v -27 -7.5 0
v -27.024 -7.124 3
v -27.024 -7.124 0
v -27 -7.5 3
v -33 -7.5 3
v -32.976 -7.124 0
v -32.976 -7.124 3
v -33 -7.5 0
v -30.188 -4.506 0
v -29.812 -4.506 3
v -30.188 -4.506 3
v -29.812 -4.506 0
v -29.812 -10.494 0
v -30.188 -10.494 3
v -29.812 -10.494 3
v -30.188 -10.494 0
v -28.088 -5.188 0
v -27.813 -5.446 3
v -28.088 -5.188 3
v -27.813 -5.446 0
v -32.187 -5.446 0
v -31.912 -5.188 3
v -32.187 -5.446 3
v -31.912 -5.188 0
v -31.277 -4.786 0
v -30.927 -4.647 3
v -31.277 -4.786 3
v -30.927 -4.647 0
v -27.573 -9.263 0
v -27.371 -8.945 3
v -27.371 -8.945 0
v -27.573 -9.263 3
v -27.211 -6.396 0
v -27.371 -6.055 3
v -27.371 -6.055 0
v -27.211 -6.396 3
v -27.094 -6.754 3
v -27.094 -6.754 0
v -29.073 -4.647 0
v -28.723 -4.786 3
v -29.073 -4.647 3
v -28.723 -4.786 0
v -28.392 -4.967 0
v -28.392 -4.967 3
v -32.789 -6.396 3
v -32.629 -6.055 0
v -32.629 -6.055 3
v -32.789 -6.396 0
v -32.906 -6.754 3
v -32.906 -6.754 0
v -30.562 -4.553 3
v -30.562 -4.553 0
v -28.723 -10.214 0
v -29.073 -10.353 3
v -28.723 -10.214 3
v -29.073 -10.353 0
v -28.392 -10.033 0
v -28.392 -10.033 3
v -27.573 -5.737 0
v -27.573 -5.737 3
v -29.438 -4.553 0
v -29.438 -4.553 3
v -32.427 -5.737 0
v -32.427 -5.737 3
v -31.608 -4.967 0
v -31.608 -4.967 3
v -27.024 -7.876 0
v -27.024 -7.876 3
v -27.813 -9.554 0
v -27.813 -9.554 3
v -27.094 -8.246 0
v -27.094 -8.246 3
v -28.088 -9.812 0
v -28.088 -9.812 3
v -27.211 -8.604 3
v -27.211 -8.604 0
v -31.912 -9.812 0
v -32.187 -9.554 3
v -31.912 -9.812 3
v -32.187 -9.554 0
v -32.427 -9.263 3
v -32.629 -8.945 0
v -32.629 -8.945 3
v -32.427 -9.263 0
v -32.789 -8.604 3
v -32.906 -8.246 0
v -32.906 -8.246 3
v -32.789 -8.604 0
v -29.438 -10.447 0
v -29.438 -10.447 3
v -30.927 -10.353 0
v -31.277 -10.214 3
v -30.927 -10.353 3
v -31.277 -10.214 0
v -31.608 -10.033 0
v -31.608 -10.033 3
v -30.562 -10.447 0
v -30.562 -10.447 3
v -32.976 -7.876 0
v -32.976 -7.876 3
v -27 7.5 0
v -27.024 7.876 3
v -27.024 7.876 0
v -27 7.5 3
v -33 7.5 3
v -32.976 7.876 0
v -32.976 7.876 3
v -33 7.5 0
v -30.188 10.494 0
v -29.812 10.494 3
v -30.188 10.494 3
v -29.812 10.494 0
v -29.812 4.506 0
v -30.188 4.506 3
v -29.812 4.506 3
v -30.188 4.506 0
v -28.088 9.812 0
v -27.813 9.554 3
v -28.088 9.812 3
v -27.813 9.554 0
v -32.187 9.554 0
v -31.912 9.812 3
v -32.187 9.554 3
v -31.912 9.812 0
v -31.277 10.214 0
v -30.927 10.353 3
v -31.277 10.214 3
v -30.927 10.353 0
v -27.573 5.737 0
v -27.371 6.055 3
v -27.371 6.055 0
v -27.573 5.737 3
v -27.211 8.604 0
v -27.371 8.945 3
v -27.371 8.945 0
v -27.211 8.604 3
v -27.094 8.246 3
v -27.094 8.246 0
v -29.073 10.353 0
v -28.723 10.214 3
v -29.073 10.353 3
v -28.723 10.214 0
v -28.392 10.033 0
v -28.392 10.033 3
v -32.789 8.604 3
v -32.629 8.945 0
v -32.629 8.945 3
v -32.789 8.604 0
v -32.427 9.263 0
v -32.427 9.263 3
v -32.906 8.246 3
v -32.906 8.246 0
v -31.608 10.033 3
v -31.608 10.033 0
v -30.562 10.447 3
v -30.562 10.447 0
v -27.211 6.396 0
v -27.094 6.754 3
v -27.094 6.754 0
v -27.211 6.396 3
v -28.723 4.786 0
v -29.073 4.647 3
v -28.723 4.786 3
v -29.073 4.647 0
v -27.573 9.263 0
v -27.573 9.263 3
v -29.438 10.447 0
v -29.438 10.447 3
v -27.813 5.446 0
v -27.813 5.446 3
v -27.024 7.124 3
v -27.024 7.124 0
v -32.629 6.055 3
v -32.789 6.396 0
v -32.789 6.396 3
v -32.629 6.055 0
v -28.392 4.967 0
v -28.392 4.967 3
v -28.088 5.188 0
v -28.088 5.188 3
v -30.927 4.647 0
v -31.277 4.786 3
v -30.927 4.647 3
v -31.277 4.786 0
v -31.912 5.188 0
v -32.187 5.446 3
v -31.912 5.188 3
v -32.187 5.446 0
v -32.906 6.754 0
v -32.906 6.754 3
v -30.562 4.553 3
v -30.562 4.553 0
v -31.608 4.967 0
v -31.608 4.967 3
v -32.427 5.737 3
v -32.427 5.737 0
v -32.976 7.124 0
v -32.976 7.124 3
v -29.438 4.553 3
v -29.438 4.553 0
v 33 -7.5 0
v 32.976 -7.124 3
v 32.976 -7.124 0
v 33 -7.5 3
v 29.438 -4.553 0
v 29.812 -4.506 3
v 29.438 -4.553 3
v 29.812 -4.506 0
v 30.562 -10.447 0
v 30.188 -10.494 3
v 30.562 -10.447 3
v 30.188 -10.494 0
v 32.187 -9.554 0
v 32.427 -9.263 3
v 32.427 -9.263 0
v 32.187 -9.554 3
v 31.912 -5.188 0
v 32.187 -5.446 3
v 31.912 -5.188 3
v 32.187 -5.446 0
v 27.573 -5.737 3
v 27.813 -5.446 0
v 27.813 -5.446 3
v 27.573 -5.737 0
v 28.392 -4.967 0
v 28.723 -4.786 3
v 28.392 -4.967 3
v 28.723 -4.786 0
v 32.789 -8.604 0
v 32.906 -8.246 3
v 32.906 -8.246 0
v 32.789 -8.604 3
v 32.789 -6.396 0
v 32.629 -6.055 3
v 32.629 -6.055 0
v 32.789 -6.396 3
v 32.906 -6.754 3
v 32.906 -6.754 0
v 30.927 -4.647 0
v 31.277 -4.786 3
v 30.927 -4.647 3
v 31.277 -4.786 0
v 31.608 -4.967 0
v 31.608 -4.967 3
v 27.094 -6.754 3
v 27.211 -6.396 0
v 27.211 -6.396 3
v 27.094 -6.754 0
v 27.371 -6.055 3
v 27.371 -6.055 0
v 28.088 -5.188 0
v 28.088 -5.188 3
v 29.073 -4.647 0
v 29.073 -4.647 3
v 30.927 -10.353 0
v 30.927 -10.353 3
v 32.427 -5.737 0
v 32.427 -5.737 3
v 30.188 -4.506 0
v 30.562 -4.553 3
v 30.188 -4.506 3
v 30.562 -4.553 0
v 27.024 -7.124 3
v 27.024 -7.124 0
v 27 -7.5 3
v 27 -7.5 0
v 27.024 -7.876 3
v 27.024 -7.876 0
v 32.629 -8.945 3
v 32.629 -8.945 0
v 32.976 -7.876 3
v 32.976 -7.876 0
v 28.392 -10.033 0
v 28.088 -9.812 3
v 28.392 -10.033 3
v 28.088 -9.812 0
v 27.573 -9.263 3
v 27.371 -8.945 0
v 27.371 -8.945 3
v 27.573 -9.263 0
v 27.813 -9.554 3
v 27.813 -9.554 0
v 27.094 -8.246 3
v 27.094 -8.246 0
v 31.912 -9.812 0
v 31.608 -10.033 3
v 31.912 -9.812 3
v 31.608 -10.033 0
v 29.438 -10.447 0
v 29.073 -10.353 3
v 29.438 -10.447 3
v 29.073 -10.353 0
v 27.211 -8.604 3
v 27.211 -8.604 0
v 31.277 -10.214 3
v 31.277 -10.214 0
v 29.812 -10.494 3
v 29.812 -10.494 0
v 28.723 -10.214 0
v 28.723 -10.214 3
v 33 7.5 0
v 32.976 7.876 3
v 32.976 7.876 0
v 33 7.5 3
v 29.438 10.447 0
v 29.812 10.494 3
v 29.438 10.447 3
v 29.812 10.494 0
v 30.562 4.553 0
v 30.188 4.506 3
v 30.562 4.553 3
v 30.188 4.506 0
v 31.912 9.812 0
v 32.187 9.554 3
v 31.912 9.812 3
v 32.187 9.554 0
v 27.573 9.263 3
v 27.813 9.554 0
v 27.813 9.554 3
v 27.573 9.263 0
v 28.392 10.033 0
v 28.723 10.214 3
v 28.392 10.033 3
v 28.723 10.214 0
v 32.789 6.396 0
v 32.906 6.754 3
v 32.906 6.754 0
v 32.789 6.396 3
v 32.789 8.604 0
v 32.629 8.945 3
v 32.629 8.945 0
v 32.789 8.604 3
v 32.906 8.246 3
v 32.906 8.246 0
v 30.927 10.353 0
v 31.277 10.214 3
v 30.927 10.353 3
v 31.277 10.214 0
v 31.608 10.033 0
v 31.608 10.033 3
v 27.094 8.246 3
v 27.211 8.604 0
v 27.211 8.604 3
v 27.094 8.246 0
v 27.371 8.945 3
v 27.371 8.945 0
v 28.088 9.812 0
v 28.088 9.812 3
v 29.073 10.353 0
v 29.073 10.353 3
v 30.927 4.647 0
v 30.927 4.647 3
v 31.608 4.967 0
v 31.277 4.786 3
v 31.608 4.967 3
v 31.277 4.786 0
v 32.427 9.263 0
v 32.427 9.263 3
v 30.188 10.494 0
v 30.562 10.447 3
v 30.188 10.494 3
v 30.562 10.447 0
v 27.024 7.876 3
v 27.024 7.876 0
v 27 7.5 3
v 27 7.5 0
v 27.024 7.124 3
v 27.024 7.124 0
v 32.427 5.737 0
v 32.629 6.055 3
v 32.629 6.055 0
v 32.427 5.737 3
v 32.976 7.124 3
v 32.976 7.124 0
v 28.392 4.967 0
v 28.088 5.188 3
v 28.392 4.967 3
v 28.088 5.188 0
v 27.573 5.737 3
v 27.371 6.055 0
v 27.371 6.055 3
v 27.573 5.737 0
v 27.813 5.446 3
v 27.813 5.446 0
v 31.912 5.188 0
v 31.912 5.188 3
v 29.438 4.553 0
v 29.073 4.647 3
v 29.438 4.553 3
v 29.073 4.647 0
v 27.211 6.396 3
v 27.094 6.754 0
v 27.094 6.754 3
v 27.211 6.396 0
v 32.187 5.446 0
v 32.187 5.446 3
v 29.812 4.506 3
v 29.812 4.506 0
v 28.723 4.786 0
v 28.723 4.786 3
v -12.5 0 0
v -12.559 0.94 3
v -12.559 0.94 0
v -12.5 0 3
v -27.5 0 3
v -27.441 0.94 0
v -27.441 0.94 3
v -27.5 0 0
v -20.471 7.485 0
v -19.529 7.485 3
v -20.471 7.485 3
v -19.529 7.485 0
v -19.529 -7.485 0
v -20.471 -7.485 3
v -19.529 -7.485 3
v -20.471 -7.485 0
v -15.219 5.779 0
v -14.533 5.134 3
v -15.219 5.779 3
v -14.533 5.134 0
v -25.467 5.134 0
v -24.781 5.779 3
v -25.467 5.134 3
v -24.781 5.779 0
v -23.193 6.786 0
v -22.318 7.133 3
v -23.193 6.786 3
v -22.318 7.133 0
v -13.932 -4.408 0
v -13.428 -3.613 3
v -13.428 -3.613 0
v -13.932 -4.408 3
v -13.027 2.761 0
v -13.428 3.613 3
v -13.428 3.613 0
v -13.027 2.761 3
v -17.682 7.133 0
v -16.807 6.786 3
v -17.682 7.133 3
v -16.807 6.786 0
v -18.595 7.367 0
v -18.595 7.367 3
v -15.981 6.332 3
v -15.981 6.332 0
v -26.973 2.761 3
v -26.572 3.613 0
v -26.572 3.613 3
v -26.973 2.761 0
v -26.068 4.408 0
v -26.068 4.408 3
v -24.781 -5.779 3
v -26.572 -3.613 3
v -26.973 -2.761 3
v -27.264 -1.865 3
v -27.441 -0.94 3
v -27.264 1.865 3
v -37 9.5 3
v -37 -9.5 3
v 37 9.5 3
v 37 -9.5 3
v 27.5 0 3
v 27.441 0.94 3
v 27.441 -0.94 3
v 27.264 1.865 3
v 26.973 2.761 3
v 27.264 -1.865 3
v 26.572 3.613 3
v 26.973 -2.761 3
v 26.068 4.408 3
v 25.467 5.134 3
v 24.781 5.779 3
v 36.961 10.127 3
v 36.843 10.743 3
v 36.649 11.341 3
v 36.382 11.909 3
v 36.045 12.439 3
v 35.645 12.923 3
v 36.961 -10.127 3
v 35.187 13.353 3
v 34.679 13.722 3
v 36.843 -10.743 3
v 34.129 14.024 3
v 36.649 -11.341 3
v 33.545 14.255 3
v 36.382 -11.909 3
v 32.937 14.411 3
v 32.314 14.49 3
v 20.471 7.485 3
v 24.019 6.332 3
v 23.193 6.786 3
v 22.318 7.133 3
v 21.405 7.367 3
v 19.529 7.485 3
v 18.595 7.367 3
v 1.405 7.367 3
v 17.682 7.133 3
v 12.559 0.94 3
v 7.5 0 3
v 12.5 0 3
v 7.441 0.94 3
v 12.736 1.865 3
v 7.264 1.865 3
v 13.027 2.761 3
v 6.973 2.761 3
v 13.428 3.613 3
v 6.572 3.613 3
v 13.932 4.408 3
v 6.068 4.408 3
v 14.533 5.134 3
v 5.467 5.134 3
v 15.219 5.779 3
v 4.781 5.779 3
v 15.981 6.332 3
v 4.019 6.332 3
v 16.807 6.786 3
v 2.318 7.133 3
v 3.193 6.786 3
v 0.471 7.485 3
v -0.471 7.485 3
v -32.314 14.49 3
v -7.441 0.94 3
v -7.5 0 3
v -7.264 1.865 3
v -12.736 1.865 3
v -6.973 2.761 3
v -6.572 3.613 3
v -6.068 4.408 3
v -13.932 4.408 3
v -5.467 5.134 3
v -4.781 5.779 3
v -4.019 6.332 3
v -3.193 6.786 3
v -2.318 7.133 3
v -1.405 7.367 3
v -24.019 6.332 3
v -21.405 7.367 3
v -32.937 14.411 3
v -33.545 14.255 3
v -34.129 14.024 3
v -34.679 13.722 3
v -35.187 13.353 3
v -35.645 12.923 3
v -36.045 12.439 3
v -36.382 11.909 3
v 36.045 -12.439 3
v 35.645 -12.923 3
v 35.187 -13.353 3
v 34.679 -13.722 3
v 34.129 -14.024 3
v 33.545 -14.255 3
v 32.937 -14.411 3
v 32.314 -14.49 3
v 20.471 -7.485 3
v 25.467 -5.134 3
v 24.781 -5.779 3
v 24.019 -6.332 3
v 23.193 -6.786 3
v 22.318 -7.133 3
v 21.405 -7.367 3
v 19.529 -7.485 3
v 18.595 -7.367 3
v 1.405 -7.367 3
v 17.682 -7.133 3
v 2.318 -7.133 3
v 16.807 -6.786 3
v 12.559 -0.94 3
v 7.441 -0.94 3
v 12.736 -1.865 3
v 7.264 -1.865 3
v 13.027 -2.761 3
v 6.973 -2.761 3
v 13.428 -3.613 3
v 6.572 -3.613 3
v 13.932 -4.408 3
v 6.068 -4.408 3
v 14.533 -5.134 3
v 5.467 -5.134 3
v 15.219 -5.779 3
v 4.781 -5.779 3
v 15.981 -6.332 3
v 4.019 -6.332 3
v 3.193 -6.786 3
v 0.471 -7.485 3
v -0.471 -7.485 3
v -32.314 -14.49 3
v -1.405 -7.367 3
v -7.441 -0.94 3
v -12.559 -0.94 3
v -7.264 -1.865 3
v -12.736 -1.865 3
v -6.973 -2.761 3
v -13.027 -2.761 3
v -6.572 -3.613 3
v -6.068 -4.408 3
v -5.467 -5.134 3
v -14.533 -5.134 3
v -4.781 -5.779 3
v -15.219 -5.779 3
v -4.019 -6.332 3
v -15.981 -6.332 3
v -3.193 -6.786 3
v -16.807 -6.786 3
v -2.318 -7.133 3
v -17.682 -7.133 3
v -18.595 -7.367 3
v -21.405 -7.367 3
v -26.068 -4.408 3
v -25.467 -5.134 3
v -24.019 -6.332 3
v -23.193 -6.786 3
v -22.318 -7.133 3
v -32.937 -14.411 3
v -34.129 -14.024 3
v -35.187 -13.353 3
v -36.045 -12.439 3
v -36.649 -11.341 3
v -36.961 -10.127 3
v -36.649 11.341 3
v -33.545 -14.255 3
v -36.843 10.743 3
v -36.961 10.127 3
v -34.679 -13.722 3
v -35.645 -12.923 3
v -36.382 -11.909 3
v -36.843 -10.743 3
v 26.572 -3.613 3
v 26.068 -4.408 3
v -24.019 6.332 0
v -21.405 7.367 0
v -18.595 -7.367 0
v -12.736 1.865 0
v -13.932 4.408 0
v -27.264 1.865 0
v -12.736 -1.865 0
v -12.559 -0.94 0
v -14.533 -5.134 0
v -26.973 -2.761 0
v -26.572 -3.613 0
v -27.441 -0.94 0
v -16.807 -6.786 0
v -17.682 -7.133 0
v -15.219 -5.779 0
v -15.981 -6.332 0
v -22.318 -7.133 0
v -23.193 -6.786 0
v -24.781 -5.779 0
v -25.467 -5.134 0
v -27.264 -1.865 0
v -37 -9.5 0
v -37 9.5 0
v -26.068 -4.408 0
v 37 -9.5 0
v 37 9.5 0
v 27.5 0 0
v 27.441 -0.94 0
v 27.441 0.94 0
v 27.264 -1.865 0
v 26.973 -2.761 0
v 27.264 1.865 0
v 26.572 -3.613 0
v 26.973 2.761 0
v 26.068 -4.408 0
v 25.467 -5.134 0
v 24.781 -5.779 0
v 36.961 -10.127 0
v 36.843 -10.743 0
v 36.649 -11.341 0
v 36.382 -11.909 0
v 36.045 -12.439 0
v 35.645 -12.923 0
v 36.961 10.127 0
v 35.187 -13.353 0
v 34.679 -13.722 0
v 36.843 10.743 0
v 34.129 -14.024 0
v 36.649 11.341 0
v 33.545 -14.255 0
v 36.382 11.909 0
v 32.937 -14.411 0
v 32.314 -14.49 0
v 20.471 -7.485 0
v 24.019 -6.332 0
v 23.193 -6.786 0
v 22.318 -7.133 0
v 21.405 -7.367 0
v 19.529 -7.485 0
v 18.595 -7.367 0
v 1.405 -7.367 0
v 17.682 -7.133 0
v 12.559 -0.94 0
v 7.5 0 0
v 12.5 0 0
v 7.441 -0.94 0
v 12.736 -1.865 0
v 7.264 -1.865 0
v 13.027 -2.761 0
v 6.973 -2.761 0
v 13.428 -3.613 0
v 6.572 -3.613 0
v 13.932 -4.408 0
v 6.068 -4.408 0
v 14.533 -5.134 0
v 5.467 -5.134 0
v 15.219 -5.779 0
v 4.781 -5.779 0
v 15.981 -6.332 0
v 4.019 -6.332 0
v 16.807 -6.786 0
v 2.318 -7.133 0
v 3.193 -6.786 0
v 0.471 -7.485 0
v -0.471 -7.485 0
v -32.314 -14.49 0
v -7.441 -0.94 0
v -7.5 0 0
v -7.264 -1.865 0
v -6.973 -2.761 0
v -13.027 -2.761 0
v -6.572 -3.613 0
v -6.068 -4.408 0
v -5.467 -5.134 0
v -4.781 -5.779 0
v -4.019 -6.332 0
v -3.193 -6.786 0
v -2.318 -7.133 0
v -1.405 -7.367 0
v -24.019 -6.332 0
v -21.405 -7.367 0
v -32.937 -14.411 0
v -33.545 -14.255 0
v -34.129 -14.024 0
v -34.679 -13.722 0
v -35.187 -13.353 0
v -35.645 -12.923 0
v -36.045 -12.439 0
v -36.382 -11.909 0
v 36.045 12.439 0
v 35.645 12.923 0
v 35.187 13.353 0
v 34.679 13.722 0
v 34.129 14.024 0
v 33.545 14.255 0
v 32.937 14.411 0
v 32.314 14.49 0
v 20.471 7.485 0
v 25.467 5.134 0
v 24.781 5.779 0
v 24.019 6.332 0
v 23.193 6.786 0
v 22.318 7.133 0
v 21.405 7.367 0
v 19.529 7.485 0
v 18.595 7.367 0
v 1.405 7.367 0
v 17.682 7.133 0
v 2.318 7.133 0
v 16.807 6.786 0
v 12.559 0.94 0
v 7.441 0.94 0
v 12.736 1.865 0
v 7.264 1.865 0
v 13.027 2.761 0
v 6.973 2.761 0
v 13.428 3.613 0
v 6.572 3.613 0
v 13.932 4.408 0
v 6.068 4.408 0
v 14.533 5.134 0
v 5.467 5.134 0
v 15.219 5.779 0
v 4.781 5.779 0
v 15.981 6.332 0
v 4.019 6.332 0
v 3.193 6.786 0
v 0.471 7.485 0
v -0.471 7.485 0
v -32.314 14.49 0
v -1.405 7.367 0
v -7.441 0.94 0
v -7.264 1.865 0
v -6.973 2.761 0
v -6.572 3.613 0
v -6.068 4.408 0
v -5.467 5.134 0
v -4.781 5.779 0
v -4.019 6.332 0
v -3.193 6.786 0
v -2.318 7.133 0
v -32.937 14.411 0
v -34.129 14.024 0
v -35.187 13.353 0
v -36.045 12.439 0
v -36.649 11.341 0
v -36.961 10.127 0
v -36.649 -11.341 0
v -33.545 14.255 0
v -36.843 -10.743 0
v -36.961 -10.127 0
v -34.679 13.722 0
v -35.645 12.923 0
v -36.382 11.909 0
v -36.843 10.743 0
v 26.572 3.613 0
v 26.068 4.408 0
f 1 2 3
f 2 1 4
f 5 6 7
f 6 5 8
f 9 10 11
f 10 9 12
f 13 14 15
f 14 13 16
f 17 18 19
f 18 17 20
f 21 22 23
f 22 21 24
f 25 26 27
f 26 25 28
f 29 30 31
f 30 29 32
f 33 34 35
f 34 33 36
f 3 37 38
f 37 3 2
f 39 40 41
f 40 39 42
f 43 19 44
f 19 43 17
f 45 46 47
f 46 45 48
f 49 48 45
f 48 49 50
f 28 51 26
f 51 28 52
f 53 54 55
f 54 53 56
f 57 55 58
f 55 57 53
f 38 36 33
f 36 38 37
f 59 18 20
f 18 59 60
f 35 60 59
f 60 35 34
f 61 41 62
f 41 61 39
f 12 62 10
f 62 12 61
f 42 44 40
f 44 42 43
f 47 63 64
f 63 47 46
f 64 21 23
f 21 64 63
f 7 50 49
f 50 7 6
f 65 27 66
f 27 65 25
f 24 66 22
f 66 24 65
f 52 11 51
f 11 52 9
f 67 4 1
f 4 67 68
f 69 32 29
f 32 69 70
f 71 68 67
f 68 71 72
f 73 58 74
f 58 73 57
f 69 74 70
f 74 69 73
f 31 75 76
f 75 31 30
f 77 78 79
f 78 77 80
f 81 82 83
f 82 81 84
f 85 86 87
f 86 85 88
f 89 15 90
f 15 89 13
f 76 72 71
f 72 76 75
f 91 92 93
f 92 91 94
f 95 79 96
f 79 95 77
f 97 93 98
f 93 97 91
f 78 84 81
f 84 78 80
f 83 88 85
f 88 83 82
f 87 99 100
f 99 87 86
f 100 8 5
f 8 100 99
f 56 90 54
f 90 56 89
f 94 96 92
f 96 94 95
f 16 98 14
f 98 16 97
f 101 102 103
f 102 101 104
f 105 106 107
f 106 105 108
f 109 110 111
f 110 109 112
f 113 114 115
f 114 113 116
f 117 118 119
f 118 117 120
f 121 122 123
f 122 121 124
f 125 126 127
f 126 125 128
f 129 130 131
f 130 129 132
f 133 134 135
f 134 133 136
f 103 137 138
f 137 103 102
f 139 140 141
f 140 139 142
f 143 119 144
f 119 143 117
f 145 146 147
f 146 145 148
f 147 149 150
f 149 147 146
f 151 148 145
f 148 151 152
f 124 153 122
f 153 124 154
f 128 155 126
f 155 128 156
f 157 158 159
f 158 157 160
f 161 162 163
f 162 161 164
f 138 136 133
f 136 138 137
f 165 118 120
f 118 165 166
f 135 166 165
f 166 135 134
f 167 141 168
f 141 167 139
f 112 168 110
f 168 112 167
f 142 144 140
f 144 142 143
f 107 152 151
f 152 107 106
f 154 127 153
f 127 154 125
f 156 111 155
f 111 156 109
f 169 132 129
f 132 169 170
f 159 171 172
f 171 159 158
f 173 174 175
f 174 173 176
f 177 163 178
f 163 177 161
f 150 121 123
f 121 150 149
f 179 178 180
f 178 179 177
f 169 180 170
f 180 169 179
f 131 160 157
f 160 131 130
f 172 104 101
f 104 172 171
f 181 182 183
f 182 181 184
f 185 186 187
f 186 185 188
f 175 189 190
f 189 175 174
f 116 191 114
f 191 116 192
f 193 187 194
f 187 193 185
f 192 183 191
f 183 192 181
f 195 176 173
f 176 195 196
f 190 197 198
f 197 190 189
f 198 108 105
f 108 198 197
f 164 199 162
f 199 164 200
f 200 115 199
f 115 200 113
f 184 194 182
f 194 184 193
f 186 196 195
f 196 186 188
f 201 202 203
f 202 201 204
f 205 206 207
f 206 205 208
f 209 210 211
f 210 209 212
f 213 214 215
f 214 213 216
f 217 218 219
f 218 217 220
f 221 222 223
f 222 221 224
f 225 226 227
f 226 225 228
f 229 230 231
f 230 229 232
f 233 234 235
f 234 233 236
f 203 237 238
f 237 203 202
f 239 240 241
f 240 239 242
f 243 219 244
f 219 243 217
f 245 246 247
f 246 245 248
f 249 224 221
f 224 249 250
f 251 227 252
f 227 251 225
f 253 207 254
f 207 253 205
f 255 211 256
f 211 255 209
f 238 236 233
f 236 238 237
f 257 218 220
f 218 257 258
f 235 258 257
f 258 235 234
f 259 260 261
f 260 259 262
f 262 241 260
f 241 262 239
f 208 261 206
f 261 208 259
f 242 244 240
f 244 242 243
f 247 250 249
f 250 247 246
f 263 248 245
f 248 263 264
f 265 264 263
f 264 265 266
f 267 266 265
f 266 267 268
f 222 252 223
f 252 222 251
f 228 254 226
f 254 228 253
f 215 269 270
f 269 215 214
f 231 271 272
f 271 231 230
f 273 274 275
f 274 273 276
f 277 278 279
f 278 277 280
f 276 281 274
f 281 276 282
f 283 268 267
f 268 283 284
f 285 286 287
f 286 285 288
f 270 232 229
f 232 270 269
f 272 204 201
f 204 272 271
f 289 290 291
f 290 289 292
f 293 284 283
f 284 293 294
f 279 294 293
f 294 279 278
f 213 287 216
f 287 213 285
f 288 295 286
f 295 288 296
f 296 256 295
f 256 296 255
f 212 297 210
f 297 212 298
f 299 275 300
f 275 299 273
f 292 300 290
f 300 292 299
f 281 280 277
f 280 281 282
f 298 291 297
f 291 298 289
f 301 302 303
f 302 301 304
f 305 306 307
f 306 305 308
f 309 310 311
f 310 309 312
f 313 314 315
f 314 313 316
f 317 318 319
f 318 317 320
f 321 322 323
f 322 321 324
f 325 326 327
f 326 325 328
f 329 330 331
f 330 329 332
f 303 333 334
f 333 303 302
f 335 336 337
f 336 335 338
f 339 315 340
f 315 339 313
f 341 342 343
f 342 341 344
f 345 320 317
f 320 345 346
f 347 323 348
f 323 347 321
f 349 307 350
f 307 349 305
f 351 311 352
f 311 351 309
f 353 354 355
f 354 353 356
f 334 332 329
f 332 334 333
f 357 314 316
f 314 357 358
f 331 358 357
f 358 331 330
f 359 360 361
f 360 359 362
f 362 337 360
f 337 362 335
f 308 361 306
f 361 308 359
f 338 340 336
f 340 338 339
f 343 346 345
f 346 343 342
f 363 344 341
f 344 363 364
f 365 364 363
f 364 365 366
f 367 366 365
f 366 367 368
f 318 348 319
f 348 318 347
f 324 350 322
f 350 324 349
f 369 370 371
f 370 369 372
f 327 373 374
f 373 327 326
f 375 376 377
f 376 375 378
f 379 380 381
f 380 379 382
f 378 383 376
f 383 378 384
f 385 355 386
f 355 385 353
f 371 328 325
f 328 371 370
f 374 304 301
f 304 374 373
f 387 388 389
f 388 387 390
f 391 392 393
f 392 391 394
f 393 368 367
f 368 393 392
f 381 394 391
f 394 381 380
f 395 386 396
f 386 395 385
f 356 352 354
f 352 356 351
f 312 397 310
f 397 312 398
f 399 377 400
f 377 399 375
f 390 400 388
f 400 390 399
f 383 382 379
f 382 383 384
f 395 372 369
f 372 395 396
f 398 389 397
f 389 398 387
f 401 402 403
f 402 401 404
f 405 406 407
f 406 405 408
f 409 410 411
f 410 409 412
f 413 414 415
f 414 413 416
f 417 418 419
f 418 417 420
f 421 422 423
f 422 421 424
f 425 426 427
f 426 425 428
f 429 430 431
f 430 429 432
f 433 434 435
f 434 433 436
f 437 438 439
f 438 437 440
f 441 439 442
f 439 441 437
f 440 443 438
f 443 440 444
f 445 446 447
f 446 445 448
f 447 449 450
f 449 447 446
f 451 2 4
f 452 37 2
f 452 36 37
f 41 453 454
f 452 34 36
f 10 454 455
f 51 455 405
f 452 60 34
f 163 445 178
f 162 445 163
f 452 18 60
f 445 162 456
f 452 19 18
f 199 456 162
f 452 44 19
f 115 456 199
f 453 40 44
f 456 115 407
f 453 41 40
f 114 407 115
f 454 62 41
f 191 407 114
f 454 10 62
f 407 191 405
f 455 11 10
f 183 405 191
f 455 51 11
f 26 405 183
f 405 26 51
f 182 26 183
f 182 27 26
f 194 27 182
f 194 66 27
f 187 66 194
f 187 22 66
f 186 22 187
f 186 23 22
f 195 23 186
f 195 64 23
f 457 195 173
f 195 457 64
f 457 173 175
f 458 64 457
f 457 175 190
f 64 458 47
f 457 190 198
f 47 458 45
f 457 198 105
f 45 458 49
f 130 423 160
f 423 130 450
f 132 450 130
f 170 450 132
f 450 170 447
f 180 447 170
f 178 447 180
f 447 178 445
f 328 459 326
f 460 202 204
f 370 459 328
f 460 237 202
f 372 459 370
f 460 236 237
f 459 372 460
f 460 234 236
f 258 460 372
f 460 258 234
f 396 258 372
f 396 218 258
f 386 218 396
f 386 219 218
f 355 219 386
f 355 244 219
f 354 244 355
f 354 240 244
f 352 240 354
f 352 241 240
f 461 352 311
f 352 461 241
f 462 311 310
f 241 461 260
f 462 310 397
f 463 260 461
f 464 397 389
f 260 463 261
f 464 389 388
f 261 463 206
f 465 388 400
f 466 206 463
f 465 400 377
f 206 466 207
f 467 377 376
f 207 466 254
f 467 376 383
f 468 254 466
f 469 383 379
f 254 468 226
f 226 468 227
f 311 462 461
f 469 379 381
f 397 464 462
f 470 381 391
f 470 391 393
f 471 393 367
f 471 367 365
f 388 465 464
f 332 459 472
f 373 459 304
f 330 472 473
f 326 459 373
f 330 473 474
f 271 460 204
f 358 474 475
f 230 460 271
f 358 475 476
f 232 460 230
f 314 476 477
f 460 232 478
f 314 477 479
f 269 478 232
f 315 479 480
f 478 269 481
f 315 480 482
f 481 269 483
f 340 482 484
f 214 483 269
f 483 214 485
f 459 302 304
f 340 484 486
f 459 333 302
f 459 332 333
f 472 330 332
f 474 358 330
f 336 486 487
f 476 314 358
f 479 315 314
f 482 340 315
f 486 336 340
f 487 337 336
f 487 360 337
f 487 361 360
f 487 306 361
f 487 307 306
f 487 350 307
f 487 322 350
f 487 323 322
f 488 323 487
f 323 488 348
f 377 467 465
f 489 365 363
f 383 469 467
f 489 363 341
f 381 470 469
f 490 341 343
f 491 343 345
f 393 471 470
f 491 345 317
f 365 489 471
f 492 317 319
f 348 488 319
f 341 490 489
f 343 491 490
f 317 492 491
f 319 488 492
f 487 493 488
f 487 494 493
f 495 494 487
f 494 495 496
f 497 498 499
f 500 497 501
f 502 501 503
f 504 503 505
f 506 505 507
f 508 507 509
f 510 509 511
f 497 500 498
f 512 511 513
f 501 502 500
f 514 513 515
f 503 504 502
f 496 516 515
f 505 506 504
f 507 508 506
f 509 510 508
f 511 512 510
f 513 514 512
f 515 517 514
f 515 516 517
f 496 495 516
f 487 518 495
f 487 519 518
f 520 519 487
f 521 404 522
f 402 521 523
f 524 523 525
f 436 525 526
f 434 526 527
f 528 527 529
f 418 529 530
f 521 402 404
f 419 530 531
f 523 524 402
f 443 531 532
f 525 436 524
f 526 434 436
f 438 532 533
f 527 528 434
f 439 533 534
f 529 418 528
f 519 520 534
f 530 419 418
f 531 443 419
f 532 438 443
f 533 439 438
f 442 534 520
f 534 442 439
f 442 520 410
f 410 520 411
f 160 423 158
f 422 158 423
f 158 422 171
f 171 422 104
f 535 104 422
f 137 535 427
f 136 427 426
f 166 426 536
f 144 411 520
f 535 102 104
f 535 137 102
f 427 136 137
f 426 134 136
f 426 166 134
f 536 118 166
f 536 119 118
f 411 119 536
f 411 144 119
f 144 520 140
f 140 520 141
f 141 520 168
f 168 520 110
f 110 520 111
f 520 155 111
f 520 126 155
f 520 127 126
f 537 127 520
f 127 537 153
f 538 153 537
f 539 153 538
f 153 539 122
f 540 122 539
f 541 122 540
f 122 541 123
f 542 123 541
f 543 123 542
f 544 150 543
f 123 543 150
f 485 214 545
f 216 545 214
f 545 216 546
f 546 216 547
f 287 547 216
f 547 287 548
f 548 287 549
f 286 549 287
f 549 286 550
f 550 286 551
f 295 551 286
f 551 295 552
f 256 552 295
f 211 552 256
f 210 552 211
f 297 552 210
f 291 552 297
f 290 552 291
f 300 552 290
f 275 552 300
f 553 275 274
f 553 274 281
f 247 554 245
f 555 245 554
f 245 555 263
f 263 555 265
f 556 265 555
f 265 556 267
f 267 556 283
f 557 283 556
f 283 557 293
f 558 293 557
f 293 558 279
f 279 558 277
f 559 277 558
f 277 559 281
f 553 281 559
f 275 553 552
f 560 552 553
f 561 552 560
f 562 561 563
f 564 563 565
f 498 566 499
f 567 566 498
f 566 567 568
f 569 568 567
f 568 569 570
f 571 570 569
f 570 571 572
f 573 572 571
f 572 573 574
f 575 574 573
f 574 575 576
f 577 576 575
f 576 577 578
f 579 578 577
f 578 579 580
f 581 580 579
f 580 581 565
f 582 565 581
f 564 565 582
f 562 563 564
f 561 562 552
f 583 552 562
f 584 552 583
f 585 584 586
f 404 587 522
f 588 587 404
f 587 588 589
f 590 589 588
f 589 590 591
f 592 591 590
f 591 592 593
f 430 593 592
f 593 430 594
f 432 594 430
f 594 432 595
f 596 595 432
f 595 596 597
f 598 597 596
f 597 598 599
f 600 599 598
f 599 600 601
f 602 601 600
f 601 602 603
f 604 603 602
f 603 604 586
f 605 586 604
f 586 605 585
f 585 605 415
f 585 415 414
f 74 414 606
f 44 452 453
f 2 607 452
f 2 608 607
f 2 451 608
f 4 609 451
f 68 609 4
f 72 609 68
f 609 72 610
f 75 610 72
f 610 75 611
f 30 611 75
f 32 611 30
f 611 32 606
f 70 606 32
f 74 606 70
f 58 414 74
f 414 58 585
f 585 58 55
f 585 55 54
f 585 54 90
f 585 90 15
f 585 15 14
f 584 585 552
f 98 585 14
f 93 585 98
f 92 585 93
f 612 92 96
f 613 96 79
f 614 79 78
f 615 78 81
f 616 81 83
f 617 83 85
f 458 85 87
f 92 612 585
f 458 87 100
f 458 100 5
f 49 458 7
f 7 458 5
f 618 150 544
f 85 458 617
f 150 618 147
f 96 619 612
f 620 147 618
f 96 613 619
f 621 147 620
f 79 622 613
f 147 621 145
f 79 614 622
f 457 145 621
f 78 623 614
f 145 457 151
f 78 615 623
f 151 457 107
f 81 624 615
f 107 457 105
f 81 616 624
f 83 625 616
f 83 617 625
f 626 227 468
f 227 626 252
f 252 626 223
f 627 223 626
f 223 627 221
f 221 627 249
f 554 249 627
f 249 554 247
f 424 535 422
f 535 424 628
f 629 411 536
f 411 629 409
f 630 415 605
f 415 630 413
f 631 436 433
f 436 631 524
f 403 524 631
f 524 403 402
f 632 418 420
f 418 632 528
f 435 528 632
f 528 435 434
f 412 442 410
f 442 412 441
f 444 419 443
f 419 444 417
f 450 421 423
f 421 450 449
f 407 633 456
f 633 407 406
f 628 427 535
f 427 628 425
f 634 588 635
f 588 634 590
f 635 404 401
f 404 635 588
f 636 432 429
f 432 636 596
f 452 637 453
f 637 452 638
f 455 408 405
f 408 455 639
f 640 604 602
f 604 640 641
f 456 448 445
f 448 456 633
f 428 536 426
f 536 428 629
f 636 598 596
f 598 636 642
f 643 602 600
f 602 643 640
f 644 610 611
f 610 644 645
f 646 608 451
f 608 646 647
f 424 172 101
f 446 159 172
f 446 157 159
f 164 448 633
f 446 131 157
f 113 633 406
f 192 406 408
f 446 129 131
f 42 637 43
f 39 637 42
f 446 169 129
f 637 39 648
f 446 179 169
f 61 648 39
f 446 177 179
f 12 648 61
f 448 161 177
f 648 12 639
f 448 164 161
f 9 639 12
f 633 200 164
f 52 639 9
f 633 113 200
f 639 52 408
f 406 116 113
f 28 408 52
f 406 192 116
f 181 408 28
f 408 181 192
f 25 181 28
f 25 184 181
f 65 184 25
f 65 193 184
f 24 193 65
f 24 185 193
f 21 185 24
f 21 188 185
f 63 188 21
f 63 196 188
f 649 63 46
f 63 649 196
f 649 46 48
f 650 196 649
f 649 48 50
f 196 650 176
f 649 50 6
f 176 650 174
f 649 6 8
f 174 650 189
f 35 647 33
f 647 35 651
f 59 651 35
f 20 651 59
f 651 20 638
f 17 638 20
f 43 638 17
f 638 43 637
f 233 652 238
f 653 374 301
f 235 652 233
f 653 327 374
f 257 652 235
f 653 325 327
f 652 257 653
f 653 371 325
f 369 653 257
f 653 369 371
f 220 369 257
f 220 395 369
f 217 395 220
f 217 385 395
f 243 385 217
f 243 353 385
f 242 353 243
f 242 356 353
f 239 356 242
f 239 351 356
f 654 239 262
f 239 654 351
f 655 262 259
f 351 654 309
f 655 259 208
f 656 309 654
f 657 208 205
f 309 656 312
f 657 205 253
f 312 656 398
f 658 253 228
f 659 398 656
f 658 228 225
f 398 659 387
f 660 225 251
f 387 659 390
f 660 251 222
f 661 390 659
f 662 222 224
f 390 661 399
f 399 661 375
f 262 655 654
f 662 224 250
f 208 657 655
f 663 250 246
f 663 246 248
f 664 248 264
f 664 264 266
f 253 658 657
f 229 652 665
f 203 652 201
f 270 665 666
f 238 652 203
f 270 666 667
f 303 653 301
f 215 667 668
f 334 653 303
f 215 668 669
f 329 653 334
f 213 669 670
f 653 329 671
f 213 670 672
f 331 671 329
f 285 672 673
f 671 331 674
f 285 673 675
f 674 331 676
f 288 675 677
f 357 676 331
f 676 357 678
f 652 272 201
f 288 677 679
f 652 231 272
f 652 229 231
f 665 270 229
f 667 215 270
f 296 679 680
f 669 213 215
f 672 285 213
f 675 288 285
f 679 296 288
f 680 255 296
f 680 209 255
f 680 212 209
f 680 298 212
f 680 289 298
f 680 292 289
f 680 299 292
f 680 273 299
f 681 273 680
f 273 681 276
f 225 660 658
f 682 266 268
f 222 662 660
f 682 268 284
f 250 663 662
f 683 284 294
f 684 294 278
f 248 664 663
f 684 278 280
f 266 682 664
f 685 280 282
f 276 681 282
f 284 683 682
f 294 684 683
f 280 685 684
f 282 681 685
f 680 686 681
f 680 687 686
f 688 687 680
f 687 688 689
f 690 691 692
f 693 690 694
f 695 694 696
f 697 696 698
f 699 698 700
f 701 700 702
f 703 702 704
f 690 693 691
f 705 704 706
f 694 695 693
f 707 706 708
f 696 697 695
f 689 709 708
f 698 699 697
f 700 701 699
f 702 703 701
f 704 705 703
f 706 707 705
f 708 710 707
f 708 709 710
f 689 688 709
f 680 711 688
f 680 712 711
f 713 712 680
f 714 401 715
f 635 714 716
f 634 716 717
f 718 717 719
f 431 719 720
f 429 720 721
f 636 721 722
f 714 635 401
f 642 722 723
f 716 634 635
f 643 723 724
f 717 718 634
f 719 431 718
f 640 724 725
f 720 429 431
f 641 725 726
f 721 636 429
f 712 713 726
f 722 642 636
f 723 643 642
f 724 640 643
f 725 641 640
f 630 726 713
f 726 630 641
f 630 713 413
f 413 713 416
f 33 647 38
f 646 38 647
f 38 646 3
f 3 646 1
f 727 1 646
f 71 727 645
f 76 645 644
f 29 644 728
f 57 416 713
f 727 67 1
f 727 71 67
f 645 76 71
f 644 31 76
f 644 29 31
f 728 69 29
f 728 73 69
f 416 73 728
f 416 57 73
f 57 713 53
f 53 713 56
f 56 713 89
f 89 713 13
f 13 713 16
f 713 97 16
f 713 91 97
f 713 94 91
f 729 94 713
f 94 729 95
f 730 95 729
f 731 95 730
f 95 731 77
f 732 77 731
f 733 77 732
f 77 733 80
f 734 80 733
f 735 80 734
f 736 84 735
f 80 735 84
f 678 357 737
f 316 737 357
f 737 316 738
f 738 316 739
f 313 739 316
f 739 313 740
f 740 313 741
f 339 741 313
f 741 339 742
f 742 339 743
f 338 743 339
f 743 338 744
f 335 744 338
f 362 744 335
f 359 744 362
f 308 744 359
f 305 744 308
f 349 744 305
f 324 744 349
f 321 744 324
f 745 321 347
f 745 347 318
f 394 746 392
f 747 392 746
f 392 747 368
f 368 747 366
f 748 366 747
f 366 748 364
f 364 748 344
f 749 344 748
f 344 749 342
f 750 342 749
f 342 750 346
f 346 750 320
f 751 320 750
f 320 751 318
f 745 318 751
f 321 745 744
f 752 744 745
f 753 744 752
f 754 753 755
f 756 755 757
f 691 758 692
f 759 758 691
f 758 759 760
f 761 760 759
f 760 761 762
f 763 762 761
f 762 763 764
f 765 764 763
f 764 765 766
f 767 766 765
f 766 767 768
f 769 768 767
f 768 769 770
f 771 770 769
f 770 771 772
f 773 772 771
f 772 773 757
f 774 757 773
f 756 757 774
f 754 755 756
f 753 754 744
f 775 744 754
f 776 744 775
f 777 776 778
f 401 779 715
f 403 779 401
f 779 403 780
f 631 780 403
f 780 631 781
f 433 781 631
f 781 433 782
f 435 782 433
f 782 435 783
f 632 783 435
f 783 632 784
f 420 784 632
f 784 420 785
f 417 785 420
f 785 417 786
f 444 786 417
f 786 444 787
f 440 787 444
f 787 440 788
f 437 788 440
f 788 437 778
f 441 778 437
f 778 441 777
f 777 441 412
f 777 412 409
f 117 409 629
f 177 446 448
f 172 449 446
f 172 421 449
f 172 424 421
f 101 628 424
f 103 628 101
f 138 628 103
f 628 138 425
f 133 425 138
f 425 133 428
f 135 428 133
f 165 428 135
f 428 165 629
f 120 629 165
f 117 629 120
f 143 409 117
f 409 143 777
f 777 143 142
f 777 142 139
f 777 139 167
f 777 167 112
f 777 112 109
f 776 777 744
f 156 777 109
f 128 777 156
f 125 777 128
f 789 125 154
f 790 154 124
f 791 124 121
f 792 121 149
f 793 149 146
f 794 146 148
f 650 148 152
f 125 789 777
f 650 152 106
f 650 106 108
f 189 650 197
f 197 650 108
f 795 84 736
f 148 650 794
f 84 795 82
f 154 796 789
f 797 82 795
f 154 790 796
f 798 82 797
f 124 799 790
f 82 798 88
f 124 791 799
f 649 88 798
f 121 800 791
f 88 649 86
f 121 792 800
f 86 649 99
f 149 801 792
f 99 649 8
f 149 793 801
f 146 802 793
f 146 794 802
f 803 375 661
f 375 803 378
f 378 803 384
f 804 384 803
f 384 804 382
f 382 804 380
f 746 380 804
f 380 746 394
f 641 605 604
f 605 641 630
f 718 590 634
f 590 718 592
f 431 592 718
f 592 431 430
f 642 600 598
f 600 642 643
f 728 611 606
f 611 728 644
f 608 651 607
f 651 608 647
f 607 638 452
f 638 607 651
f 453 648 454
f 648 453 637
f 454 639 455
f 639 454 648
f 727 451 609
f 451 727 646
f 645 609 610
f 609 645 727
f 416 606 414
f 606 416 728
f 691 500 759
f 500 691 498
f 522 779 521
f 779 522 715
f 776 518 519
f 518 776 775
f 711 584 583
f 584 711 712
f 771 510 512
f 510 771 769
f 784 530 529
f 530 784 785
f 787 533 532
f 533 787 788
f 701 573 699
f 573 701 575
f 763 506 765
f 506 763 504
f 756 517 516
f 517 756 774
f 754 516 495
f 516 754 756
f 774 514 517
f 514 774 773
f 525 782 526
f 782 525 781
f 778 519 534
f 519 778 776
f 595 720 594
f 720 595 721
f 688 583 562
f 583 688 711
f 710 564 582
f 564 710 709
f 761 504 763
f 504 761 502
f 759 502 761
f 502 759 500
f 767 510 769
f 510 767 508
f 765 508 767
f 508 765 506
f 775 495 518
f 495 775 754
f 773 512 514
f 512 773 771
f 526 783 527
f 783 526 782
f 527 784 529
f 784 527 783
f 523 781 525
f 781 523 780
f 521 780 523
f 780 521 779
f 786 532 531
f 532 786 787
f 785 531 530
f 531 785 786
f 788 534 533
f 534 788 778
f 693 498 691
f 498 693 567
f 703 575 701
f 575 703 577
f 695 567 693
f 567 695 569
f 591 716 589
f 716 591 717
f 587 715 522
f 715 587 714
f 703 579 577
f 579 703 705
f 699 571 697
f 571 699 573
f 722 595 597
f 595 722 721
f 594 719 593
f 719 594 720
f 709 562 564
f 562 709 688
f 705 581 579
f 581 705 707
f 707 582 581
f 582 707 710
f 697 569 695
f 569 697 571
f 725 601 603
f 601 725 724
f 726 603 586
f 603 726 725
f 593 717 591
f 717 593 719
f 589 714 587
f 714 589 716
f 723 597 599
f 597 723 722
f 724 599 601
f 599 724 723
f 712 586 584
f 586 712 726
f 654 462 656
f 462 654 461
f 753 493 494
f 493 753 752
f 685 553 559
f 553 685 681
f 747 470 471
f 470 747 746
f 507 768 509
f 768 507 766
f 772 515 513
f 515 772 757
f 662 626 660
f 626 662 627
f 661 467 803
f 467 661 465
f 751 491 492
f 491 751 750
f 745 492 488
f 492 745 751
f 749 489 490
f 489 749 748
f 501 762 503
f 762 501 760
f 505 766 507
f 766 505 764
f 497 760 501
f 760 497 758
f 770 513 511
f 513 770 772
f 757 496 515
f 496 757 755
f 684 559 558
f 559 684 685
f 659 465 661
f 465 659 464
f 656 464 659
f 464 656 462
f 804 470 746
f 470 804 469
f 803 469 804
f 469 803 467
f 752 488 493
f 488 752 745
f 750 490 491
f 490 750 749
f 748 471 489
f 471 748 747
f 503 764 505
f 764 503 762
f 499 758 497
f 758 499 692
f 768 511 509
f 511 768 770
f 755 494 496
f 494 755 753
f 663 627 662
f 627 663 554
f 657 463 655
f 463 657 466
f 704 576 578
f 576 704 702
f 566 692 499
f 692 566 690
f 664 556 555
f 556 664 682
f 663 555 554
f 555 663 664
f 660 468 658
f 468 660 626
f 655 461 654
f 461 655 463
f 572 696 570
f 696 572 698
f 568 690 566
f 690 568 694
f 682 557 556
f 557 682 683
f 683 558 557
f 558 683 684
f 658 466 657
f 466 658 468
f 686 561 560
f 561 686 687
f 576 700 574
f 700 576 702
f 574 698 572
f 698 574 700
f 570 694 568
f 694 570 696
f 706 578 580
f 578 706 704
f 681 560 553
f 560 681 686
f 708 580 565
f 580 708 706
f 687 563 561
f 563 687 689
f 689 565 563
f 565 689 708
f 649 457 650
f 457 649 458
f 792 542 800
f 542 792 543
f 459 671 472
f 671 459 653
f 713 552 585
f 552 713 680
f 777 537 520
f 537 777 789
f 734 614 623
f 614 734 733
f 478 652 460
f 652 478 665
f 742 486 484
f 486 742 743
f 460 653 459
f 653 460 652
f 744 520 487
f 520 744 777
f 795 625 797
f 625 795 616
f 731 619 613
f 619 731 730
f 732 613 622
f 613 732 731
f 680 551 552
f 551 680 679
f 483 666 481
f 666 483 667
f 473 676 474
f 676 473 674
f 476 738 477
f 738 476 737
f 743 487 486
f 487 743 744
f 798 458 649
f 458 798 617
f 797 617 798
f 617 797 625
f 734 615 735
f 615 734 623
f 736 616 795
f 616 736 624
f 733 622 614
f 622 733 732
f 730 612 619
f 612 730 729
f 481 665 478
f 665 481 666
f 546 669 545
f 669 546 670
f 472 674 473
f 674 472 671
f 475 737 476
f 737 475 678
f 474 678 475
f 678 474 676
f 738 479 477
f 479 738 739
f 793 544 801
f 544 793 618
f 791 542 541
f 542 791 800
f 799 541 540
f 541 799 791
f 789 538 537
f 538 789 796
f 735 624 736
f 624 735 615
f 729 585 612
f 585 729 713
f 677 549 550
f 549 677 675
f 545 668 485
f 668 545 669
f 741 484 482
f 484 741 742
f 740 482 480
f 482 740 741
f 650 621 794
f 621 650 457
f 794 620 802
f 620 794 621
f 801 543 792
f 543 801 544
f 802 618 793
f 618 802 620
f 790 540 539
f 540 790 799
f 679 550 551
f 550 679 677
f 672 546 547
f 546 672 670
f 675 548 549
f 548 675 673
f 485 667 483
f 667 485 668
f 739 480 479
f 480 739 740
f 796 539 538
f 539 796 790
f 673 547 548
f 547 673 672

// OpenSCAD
$fn = 50;


difference() {
	union() {
		hull() {
			translate(v = [-32.0000000000, 9.5000000000, 0]) {
				cylinder(h = 3, r = 5);
			}
			translate(v = [32.0000000000, 9.5000000000, 0]) {
				cylinder(h = 3, r = 5);
			}
			translate(v = [-32.0000000000, -9.5000000000, 0]) {
				cylinder(h = 3, r = 5);
			}
			translate(v = [32.0000000000, -9.5000000000, 0]) {
				cylinder(h = 3, r = 5);
			}
		}
	}
	union() {
		#translate(v = [-30.0000000000, -7.5000000000, -100.0000000000]) {
			cylinder(h = 200, r = 3.0000000000);
		}
		#translate(v = [-30.0000000000, 7.5000000000, -100.0000000000]) {
			cylinder(h = 200, r = 3.0000000000);
		}
		#translate(v = [30.0000000000, -7.5000000000, -100.0000000000]) {
			cylinder(h = 200, r = 3.0000000000);
		}
		#translate(v = [30.0000000000, 7.5000000000, -100.0000000000]) {
			cylinder(h = 200, r = 3.0000000000);
		}
		#translate(v = [-20.0000000000, 0, 0]) {
			cylinder(h = 3, r = 7.5000000000);
		}
		#cylinder(h = 3, r = 7.5000000000);
		#translate(v = [20.0000000000, 0, 0]) {
			cylinder(h = 3, r = 7.5000000000);
		}
	}
}
